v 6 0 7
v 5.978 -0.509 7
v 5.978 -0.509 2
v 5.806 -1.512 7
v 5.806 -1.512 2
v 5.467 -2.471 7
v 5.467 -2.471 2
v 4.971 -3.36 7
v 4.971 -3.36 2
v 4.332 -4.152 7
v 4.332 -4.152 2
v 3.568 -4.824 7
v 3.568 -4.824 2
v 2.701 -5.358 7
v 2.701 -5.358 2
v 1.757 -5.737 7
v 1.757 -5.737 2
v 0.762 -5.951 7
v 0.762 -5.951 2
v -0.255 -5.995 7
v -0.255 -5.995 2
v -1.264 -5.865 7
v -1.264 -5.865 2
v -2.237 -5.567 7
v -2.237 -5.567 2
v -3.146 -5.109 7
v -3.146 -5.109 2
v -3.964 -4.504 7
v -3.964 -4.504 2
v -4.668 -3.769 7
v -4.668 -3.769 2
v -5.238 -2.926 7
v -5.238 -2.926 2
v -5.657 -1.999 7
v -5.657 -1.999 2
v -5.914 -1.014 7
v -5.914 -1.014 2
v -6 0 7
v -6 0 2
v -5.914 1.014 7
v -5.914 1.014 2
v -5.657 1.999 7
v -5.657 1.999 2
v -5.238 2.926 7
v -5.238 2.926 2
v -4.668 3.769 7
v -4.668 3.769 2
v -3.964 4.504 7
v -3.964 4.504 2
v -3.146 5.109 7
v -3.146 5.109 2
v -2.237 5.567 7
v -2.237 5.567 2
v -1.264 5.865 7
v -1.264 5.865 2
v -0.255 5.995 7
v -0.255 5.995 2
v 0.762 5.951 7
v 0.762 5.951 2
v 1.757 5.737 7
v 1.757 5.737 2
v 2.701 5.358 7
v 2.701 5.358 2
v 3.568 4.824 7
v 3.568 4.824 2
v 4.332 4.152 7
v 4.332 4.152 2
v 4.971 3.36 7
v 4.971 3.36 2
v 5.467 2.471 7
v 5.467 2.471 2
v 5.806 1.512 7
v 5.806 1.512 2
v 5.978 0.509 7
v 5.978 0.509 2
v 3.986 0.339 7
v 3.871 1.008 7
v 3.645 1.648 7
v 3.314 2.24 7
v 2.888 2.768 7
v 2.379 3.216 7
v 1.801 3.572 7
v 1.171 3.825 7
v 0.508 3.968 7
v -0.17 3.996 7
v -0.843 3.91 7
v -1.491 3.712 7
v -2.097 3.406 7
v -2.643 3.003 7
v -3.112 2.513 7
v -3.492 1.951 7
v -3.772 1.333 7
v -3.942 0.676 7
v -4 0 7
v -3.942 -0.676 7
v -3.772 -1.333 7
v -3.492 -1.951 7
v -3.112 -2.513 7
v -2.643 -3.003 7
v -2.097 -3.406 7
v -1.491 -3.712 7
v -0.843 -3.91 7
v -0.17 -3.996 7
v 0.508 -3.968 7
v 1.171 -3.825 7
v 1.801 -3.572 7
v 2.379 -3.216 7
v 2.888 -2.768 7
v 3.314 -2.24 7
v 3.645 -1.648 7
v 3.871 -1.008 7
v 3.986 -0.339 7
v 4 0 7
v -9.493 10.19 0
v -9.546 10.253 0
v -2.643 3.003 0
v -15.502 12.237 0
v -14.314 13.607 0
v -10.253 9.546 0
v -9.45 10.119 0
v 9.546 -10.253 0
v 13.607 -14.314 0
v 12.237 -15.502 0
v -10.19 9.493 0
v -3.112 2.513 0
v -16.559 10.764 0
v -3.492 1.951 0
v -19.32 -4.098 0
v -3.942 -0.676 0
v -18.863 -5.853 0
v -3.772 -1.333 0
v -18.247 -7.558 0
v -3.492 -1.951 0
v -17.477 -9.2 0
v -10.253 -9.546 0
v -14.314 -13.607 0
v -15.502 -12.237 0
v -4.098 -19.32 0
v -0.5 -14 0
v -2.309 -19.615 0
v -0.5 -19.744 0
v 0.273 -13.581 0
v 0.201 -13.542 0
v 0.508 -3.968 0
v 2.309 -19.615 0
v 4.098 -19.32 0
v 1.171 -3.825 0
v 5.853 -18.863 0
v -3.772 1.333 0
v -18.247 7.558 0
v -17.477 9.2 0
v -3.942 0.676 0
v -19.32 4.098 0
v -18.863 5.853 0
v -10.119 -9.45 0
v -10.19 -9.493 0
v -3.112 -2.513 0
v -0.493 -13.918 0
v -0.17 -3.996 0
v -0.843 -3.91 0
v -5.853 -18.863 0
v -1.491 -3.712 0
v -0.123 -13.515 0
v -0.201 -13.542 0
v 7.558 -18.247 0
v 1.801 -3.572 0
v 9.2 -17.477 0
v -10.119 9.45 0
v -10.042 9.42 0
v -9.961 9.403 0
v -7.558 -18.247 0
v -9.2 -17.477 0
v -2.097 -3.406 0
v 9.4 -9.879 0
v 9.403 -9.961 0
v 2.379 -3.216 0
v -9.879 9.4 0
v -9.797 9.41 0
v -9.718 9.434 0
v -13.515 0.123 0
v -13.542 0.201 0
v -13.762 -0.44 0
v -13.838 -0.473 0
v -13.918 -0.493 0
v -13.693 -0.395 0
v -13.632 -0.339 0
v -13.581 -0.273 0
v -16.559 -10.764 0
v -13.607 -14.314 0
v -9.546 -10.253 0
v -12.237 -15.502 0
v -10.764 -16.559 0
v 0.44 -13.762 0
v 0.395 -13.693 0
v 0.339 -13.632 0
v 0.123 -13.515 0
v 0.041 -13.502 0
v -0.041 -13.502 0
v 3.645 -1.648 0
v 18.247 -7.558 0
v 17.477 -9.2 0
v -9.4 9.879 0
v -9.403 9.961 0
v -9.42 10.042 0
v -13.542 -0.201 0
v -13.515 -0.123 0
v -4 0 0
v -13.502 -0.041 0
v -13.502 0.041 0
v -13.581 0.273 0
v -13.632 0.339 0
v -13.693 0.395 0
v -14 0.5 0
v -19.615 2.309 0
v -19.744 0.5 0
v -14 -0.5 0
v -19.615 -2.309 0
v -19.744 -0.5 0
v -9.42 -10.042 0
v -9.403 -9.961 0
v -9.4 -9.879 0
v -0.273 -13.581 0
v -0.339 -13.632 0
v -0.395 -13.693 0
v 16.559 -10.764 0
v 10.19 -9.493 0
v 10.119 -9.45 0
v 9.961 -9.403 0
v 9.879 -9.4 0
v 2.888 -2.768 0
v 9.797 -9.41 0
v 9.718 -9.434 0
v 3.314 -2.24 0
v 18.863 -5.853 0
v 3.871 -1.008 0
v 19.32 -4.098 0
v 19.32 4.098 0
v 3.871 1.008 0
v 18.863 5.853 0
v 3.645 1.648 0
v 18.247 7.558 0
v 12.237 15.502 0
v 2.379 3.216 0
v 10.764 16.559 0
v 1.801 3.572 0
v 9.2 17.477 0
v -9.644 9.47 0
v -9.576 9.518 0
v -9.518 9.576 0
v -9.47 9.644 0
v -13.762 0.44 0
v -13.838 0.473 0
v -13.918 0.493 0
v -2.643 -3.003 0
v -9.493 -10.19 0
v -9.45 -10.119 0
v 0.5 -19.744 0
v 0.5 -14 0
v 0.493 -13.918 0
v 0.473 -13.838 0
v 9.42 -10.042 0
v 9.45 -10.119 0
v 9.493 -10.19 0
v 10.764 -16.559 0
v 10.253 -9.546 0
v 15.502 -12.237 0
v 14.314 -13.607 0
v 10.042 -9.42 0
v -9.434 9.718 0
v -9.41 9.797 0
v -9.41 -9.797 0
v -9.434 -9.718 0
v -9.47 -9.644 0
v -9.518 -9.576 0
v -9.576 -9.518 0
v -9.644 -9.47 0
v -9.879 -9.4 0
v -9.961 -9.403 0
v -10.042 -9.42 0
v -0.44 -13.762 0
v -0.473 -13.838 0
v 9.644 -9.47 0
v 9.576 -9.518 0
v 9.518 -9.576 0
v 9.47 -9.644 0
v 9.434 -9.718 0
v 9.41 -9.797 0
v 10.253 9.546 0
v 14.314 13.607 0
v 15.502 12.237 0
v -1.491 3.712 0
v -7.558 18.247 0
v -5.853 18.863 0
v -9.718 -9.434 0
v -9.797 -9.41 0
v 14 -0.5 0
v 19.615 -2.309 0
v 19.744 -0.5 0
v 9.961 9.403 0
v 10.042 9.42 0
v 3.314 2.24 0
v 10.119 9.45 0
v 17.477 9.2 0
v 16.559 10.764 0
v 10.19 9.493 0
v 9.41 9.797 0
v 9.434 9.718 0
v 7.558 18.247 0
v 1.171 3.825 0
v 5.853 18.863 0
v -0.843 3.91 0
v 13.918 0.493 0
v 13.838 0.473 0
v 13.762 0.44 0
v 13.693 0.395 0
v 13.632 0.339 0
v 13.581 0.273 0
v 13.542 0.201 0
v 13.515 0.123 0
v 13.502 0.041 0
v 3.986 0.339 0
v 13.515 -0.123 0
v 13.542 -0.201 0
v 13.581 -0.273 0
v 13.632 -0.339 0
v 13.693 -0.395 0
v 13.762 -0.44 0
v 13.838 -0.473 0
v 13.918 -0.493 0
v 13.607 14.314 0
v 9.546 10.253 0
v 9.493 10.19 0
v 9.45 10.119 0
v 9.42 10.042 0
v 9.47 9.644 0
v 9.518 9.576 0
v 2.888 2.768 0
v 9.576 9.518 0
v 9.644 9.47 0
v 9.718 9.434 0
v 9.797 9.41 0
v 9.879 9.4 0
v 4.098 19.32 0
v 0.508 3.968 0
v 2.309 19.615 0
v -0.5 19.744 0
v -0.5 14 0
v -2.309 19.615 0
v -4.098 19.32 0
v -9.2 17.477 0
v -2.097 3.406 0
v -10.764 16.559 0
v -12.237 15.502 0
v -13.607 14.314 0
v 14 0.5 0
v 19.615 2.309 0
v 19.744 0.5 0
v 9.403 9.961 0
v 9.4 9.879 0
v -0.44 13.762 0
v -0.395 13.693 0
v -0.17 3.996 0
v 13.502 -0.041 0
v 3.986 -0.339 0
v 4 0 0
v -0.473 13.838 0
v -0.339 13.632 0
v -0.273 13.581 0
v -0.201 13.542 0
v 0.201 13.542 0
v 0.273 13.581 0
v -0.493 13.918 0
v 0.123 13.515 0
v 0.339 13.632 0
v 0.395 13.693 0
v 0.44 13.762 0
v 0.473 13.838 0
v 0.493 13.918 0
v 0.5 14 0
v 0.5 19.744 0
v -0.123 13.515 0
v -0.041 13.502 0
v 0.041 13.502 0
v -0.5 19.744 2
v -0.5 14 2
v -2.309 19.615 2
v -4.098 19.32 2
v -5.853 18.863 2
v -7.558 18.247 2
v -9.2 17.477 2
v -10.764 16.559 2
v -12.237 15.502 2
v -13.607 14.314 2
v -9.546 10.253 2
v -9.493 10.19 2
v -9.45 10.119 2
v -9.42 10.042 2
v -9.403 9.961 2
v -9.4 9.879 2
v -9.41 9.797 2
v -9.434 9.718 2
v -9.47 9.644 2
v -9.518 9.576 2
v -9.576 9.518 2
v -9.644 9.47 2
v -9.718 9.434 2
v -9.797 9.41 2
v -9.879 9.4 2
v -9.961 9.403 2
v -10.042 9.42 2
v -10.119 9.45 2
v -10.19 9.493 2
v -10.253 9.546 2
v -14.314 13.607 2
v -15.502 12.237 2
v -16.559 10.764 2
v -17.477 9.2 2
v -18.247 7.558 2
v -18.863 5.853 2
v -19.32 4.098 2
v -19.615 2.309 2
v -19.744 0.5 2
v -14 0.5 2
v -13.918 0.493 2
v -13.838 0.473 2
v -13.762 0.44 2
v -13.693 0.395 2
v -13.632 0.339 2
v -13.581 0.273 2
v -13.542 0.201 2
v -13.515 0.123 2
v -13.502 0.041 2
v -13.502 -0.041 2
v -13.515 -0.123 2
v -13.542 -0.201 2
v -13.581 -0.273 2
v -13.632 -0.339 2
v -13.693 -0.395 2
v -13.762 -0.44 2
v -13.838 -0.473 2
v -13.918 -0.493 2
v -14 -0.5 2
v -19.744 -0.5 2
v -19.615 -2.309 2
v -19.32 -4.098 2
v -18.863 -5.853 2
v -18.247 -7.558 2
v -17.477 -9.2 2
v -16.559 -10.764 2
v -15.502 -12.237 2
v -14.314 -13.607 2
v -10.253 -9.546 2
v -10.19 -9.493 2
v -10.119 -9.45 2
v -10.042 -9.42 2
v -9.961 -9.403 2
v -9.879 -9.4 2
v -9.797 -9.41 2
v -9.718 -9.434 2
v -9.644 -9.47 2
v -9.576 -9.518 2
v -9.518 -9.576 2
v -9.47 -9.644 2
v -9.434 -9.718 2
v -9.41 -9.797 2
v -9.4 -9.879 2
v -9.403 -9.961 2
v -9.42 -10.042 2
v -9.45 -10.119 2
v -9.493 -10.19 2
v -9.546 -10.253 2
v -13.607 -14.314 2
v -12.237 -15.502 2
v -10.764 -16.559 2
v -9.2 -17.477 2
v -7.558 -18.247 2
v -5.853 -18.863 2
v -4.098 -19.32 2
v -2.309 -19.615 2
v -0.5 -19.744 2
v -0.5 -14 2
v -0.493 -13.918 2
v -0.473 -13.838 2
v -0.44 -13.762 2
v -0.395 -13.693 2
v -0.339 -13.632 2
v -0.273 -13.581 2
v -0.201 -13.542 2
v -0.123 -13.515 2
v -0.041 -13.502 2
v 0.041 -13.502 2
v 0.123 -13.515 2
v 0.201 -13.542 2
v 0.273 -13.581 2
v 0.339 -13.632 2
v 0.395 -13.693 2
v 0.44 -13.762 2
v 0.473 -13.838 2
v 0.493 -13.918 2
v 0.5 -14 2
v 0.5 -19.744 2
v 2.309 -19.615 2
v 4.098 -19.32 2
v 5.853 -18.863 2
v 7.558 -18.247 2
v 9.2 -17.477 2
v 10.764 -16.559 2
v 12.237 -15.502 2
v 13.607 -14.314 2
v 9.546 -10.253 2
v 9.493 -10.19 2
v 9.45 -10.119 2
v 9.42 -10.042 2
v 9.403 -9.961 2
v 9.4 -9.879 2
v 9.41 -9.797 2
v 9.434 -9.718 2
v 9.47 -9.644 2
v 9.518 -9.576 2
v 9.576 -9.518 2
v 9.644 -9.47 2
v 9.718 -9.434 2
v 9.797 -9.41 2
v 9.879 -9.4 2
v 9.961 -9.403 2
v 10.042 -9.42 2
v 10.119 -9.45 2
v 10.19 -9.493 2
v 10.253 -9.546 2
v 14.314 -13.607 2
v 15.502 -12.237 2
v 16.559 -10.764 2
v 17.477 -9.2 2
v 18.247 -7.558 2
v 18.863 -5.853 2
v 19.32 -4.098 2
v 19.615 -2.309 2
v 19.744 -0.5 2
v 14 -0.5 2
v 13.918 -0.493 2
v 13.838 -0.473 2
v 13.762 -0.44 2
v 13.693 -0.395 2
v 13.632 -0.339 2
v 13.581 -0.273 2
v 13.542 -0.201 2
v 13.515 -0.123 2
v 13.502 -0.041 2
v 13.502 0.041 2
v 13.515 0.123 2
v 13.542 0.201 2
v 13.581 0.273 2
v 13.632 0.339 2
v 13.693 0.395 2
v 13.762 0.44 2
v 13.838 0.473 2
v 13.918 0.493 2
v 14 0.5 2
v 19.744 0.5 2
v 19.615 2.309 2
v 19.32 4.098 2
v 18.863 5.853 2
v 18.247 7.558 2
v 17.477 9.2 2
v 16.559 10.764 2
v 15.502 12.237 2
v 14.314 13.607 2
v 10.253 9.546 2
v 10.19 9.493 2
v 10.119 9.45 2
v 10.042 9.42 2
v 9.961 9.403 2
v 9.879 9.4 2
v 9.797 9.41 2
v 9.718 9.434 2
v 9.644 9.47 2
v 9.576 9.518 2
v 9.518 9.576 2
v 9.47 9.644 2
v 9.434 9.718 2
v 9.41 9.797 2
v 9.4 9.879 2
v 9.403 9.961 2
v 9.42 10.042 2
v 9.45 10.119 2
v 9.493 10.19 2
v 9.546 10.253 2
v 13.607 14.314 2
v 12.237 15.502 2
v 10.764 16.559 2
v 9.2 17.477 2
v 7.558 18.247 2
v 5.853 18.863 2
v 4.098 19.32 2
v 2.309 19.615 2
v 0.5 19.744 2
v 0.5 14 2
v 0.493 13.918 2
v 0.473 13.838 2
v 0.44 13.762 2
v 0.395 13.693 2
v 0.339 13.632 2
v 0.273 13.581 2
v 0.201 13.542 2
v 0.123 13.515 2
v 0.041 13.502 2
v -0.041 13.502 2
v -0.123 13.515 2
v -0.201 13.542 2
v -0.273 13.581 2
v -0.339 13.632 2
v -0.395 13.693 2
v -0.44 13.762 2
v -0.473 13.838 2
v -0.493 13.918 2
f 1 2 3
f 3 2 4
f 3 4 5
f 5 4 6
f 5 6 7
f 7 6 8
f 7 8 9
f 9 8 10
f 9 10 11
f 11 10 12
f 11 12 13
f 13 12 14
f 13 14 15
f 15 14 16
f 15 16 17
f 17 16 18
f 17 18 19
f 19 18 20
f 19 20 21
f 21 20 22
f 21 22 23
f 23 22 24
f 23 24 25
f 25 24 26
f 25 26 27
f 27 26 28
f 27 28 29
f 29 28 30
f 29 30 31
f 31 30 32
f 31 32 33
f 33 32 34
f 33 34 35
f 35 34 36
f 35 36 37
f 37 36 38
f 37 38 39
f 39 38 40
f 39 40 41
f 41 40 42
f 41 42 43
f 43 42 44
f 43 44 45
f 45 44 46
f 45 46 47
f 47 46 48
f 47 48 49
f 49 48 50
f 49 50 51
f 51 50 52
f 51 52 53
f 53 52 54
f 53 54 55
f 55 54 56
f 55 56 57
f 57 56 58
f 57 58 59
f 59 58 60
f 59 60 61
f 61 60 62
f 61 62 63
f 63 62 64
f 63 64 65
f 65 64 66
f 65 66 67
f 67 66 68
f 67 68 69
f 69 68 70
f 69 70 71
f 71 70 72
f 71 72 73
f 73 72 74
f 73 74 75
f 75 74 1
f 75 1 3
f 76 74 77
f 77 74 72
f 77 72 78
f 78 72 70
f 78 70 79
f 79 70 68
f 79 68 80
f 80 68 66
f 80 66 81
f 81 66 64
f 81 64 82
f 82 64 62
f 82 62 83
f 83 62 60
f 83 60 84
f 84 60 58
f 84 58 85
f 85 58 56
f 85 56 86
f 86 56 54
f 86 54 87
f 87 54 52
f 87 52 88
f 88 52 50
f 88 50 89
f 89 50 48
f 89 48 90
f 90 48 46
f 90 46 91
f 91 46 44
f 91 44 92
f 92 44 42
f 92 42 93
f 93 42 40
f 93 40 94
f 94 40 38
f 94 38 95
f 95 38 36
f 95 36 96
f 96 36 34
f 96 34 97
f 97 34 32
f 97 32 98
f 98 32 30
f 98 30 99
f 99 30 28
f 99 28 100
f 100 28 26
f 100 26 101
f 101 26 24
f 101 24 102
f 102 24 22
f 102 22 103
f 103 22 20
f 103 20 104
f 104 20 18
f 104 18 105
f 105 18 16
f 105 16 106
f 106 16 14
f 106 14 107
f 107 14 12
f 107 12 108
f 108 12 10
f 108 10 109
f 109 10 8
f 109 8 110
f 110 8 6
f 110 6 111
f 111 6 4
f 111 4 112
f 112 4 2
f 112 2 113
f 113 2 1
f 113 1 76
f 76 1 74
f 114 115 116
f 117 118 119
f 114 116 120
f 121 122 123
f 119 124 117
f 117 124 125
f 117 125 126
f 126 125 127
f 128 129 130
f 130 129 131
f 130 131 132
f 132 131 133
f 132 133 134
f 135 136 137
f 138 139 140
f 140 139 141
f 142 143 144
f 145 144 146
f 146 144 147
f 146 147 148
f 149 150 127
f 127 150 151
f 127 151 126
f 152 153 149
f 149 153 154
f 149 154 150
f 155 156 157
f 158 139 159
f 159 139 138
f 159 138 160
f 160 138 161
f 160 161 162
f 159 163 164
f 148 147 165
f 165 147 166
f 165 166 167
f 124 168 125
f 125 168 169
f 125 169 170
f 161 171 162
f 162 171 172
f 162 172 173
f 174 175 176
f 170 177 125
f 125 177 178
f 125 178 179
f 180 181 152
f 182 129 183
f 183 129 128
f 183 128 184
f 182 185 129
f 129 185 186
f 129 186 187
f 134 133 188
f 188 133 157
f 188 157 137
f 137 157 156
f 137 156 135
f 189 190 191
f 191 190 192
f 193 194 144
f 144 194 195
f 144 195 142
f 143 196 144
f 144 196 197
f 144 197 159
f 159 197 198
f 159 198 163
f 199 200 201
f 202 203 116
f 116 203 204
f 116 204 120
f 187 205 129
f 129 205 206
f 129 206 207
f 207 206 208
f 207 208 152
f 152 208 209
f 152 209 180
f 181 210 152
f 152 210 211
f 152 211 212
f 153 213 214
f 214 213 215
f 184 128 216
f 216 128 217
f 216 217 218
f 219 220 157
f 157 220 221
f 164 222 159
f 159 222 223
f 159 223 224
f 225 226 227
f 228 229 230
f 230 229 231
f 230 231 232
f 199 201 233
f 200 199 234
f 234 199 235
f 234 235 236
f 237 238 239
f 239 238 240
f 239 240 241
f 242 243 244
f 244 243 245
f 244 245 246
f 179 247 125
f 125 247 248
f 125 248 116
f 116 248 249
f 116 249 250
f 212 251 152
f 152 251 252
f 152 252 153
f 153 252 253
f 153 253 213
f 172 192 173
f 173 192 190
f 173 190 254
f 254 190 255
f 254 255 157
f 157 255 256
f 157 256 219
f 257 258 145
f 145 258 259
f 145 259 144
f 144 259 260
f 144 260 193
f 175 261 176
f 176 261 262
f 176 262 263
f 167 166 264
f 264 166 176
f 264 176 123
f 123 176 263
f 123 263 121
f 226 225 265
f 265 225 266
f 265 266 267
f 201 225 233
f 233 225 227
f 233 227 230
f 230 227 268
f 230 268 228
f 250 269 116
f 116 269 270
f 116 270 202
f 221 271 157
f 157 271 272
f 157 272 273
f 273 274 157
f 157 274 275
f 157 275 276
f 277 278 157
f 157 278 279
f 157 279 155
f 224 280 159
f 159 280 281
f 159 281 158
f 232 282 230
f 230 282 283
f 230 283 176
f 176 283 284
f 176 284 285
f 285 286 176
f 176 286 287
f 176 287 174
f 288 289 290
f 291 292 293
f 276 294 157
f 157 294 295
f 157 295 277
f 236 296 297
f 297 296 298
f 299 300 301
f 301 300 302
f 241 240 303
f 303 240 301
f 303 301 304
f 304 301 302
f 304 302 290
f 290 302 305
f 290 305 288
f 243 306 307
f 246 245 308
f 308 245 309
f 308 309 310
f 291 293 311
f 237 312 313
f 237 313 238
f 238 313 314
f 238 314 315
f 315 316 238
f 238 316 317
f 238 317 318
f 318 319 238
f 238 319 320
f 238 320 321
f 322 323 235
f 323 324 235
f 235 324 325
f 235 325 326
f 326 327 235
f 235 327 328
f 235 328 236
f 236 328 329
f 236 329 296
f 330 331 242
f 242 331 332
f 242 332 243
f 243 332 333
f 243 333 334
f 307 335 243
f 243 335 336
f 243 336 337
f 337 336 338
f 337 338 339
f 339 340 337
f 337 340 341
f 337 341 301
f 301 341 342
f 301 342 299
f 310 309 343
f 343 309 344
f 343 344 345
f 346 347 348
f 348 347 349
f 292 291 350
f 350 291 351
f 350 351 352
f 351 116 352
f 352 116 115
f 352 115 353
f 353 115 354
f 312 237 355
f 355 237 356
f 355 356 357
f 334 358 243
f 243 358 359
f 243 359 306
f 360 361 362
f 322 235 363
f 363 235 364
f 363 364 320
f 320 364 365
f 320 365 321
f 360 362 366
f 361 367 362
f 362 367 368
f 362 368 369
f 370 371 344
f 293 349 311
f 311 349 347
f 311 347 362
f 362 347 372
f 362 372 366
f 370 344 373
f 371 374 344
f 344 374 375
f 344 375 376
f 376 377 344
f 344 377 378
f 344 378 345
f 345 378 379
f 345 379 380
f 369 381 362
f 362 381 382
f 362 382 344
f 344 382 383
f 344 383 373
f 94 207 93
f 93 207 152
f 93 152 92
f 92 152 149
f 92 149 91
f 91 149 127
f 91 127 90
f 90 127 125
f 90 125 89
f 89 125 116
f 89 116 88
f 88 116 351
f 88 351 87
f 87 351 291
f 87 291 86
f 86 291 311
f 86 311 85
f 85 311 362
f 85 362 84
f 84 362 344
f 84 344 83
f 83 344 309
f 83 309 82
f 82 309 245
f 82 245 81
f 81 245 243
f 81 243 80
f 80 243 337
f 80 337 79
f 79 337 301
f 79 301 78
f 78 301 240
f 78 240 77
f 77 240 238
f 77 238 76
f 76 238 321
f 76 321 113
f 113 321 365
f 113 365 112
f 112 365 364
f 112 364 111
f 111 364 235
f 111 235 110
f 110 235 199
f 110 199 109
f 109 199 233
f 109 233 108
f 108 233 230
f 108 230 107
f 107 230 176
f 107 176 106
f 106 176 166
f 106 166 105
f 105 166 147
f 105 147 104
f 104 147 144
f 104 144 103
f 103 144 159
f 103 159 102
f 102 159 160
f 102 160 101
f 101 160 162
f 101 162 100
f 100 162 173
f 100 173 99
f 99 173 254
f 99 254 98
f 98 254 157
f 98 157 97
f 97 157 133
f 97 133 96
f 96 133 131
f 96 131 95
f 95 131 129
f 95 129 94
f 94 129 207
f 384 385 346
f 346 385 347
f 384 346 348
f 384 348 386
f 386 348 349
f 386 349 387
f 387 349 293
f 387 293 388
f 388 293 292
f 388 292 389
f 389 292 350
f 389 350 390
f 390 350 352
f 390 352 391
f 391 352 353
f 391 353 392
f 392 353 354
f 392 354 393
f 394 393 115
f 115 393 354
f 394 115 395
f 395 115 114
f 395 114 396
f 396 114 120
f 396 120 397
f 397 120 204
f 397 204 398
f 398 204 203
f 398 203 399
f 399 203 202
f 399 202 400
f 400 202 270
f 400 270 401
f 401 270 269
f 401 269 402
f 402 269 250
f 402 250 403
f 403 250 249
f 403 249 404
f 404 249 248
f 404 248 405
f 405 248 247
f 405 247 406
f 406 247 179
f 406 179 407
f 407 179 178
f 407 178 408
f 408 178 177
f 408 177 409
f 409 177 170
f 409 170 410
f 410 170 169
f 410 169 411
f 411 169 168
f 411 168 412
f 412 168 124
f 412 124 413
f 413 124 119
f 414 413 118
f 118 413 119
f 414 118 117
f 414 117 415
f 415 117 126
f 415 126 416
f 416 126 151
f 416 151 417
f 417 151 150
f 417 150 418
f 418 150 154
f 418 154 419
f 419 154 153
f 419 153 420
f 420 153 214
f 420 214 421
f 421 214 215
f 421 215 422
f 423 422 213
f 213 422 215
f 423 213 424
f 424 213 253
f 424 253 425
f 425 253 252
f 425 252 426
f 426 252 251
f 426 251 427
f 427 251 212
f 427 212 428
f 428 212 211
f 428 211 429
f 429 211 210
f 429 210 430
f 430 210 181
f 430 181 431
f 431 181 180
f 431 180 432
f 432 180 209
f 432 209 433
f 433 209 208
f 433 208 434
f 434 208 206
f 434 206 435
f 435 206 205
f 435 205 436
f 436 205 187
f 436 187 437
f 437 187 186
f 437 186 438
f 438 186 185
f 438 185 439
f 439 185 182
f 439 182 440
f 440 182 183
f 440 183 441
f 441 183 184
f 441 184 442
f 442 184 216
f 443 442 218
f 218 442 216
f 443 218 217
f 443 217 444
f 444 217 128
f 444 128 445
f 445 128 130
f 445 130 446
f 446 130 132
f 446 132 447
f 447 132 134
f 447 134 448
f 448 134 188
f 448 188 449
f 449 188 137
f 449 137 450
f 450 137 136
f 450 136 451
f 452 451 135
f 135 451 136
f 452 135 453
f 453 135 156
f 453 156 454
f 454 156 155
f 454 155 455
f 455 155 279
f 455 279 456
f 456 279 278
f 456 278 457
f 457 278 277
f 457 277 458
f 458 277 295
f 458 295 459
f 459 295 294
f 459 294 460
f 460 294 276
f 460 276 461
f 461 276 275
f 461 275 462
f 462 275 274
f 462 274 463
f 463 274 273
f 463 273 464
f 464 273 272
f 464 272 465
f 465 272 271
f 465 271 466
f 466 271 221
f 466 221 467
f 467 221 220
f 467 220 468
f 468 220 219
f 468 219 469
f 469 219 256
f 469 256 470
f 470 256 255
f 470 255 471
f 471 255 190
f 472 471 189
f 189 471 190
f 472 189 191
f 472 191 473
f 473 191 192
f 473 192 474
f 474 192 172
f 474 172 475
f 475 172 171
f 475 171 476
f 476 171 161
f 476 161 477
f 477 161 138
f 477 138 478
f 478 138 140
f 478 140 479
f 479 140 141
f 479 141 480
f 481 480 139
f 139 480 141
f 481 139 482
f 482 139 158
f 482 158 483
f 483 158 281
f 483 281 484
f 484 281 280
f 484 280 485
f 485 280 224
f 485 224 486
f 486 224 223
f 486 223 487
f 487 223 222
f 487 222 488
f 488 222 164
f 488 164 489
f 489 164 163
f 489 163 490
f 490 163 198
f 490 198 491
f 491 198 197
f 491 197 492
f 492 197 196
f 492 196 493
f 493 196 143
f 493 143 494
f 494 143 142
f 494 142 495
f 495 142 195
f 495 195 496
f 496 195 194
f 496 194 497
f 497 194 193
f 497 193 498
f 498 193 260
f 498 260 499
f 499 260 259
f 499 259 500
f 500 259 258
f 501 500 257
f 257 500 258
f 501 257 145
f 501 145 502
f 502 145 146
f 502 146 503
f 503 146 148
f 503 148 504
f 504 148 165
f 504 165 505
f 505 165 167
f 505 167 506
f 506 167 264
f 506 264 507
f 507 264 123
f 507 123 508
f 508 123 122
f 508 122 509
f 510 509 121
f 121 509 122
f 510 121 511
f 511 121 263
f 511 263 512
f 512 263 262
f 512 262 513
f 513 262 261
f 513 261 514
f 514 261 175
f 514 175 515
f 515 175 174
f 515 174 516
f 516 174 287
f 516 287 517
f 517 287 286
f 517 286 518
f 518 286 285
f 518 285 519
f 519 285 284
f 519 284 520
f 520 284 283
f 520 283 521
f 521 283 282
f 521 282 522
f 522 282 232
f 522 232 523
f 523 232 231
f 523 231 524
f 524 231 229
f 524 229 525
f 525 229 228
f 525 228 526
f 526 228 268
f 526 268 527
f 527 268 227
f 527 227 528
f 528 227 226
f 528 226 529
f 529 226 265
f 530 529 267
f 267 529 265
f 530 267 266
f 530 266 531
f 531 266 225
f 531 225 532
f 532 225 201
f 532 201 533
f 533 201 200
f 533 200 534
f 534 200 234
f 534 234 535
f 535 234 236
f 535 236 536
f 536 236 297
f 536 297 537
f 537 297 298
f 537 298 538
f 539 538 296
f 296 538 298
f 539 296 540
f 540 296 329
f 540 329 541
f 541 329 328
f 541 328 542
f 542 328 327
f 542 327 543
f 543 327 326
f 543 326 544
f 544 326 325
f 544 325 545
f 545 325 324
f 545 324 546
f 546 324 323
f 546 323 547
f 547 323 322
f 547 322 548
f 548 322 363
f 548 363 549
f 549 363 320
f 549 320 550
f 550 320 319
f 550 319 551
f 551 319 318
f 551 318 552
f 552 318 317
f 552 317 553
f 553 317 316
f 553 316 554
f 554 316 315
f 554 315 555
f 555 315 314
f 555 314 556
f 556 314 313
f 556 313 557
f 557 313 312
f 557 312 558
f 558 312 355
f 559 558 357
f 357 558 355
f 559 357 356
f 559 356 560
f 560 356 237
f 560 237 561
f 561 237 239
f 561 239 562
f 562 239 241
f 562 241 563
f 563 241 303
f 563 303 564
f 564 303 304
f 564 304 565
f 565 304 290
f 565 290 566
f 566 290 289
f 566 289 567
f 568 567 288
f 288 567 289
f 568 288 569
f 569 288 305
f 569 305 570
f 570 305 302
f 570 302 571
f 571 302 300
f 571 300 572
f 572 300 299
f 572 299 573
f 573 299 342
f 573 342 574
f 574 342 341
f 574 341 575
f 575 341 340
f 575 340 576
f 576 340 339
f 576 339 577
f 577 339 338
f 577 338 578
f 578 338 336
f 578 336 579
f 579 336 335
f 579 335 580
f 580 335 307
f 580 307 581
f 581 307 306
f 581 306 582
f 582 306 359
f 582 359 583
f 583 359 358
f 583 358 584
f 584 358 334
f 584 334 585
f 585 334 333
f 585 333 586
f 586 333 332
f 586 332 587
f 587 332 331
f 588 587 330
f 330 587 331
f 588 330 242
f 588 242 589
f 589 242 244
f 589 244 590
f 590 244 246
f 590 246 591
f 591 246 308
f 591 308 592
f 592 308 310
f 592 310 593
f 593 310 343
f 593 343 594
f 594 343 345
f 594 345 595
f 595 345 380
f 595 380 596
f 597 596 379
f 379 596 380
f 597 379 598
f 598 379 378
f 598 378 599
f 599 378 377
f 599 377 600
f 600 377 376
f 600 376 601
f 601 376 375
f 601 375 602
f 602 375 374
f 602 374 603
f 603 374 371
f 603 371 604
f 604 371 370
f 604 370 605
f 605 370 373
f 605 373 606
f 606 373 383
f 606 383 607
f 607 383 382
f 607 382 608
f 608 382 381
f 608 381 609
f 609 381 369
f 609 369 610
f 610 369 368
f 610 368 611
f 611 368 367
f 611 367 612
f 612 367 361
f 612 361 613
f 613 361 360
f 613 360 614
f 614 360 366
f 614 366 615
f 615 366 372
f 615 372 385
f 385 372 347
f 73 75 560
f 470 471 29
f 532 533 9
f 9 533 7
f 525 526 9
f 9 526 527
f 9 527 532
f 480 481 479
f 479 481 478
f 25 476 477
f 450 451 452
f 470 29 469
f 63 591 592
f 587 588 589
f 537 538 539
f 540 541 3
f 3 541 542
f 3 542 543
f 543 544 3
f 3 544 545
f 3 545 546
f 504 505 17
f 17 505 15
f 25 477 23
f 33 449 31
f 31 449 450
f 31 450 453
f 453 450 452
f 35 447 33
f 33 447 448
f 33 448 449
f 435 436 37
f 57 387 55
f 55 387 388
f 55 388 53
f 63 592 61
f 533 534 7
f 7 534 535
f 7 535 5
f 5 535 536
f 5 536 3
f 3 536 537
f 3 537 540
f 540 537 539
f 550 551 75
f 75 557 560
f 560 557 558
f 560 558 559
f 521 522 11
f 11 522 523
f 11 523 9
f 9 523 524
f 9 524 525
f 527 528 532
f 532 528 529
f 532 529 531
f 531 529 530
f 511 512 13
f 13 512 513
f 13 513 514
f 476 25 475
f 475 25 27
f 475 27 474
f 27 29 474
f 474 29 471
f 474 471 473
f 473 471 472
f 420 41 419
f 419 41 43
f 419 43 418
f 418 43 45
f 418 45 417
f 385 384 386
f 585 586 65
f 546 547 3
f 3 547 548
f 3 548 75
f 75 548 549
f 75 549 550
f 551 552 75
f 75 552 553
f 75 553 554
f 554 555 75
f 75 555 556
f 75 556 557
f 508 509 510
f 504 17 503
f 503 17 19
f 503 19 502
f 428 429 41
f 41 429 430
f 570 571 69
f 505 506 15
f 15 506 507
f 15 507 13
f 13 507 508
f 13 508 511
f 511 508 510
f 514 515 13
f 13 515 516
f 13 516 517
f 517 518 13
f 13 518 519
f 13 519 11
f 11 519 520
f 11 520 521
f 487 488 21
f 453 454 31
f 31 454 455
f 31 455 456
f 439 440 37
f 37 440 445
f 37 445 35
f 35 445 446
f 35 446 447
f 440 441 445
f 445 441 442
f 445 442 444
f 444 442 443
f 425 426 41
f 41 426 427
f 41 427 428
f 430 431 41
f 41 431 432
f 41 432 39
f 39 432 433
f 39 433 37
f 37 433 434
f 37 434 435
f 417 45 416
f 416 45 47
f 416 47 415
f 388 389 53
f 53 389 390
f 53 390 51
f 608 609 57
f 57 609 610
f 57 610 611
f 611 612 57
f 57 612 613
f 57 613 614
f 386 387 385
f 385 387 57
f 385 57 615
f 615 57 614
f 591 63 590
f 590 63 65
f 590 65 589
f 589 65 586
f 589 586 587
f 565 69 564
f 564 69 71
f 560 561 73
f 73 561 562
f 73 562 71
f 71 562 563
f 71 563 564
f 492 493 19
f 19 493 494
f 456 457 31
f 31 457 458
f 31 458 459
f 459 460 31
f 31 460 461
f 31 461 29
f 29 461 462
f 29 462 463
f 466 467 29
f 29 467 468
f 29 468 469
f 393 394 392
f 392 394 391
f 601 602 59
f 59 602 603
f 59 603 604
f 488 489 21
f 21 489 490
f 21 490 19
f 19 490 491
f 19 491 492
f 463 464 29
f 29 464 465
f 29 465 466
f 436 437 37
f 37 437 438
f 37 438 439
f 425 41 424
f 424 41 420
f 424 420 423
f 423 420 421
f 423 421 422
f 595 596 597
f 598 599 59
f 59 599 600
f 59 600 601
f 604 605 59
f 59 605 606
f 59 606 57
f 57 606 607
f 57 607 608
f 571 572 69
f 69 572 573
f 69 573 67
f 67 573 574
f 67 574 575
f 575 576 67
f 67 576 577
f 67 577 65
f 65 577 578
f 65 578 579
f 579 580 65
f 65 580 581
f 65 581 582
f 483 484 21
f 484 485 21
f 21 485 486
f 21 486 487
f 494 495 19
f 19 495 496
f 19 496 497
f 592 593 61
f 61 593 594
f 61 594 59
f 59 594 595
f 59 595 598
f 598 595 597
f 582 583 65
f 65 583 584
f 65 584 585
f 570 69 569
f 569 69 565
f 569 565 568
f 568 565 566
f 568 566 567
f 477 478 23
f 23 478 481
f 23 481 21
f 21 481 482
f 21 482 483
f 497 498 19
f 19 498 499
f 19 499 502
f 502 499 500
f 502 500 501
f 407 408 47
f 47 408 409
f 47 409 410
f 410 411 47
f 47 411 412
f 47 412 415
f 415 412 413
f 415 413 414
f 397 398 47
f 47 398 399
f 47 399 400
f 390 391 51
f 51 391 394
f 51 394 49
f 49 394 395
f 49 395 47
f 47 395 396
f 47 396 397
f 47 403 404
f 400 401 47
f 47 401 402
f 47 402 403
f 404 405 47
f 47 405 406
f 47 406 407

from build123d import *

# Parameters (mm, degrees)
SKETCH1_R           = 6
SKETCH1_R_2         = 4
BOSS_EXTRUDE1_DEPTH = 7
SKETCH2_R           = 6
BOSS_EXTRUDE2_DEPTH = 2


with BuildPart() as part:
    # Sketch1 → Boss-Extrude1 (new body)
    with BuildSketch(Plane.XY):
        Circle(SKETCH1_R)
        Circle(SKETCH1_R_2, mode=Mode.SUBTRACT)
    extrude(amount=BOSS_EXTRUDE1_DEPTH)

    # Sketch2 → Boss-Extrude2 (add)
    with BuildSketch(Plane(origin=(0, 0, 0), x_dir=(-1, 0, 0), z_dir=(0, 0, -1))):
        with BuildLine():
            ThreePointArc((0.5, 14), (0, 13.5), (-0.5, 14))
            Line((-0.5, 14), (-0.5, 19.743669872))
            ThreePointArc((-0.5, 19.743669872), (-7.557997789, 18.246620767), (-13.607329461, 14.314436242))
            Line((-13.607329461, 14.314436242), (-9.545941546, 10.253048327))
            ThreePointArc((-9.545941546, 10.253048327), (-9.43755517, 10.090836653), (-9.399494937, 9.899494937))
            ThreePointArc((-9.399494937, 9.899494937), (-9.70815322, 9.43755517), (-10.253048327, 9.545941546))
            Line((-10.253048327, 9.545941546), (-14.314436242, 13.607329461))
            ThreePointArc((-14.314436242, 13.607329461), (-18.246620767, 7.557997789), (-19.743669872, 0.5))
            Line((-19.743669872, 0.5), (-14, 0.5))
            ThreePointArc((-14, 0.5), (-13.646446609, 0.353553391), (-13.5, 0))
            ThreePointArc((-13.5, 0), (-13.646446609, -0.353553391), (-14, -0.5))
            Line((-14, -0.5), (-19.743669872, -0.5))
            ThreePointArc((-19.743669872, -0.5), (-18.246620767, -7.557997789), (-14.314436242, -13.607329461))
            Line((-14.314436242, -13.607329461), (-10.253048327, -9.545941546))
            ThreePointArc((-10.253048327, -9.545941546), (-9.70815322, -9.43755517), (-9.399494937, -9.899494937))
            ThreePointArc((-9.399494937, -9.899494937), (-9.43755517, -10.090836653), (-9.545941546, -10.253048327))
            Line((-9.545941546, -10.253048327), (-13.607329461, -14.314436242))
            ThreePointArc((-13.607329461, -14.314436242), (-7.557997789, -18.246620767), (-0.5, -19.743669872))
            Line((-0.5, -19.743669872), (-0.5, -14))
            ThreePointArc((-0.5, -14), (0, -13.5), (0.5, -14))
            Line((0.5, -14), (0.5, -19.743669872))
            ThreePointArc((0.5, -19.743669872), (7.557997789, -18.246620767), (13.607329461, -14.314436242))
            Line((13.607329461, -14.314436242), (9.545941546, -10.253048327))
            ThreePointArc((9.545941546, -10.253048327), (9.545941546, -9.545941546), (10.253048327, -9.545941546))
            Line((10.253048327, -9.545941546), (14.314436242, -13.607329461))
            ThreePointArc((14.314436242, -13.607329461), (18.246620767, -7.557997789), (19.743669872, -0.5))
            Line((19.743669872, -0.5), (14, -0.5))
            ThreePointArc((14, -0.5), (13.5, 0), (14, 0.5))
            Line((14, 0.5), (19.743669872, 0.5))
            ThreePointArc((19.743669872, 0.5), (18.246620767, 7.557997789), (14.314436242, 13.607329461))
            Line((14.314436242, 13.607329461), (10.253048327, 9.545941546))
            ThreePointArc((10.253048327, 9.545941546), (9.545941546, 9.545941546), (9.545941546, 10.253048327))
            Line((9.545941546, 10.253048327), (13.607329461, 14.314436242))
            ThreePointArc((13.607329461, 14.314436242), (7.557997789, 18.246620767), (0.5, 19.743669872))
            Line((0.5, 19.743669872), (0.5, 14))
        make_face()
        Circle(SKETCH2_R, mode=Mode.SUBTRACT)
    extrude(amount=-BOSS_EXTRUDE2_DEPTH)


solid = part.part
